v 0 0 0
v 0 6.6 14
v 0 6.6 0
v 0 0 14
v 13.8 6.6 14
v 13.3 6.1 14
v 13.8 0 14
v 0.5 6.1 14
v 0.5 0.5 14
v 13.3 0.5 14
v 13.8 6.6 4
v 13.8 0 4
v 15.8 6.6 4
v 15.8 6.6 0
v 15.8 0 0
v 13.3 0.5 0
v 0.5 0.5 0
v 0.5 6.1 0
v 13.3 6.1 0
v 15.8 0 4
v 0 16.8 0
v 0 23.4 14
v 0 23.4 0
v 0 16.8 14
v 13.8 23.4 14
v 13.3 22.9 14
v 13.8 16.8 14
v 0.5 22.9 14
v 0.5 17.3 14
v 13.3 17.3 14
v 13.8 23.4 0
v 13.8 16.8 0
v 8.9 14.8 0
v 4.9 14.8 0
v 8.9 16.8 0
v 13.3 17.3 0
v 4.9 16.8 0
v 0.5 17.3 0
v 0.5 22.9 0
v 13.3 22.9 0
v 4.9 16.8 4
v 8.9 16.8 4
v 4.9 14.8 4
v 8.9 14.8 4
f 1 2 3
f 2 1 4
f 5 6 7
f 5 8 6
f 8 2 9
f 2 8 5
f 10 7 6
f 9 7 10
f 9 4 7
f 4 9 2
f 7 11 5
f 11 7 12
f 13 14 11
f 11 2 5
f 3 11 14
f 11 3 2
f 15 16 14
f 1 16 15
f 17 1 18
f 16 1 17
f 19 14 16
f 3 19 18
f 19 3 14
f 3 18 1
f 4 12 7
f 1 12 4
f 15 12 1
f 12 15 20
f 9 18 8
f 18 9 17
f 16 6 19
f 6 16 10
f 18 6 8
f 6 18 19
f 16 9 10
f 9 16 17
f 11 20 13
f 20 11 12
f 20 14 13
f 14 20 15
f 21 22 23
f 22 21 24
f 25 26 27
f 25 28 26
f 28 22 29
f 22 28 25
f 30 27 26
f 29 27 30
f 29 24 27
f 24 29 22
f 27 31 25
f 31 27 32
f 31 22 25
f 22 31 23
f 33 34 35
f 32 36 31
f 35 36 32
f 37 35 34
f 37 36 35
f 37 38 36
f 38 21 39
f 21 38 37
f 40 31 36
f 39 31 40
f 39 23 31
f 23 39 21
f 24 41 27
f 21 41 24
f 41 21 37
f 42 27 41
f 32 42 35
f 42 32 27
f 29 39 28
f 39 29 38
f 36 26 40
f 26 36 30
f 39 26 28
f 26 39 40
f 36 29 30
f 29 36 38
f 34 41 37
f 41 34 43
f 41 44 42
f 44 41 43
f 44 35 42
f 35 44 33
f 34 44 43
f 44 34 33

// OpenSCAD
// connectors to make there be only one 
// obvious right way to attach a TIPI
// cable to the RPi, and TIPI pcb.


oxf_x = 12.8;
oxf_y = 2.7 * 2 + 0.2;
oxf_z = 14;

module sheath() {
    difference() {
        cube([oxf_x + 1, oxf_y + 1, oxf_z]);

        translate([0.5,0.5,0])
        cube([oxf_x, oxf_y, oxf_z]);
    }
}

module tipi_end() {
    union() {
        sheath();
        
        w = 4;
        offset = (oxf_x + 1) / 2 - (w/2);
        translate([offset,-2,0])
        cube([w,2,4]);
    }
}

module rpi_end() {
    union() {
        sheath();
        
        translate([oxf_x+1,0,0])
        cube([2,oxf_y + 1,4]);
    }
}

rpi_end();

translate([0,oxf_y*3,0])
tipi_end();
